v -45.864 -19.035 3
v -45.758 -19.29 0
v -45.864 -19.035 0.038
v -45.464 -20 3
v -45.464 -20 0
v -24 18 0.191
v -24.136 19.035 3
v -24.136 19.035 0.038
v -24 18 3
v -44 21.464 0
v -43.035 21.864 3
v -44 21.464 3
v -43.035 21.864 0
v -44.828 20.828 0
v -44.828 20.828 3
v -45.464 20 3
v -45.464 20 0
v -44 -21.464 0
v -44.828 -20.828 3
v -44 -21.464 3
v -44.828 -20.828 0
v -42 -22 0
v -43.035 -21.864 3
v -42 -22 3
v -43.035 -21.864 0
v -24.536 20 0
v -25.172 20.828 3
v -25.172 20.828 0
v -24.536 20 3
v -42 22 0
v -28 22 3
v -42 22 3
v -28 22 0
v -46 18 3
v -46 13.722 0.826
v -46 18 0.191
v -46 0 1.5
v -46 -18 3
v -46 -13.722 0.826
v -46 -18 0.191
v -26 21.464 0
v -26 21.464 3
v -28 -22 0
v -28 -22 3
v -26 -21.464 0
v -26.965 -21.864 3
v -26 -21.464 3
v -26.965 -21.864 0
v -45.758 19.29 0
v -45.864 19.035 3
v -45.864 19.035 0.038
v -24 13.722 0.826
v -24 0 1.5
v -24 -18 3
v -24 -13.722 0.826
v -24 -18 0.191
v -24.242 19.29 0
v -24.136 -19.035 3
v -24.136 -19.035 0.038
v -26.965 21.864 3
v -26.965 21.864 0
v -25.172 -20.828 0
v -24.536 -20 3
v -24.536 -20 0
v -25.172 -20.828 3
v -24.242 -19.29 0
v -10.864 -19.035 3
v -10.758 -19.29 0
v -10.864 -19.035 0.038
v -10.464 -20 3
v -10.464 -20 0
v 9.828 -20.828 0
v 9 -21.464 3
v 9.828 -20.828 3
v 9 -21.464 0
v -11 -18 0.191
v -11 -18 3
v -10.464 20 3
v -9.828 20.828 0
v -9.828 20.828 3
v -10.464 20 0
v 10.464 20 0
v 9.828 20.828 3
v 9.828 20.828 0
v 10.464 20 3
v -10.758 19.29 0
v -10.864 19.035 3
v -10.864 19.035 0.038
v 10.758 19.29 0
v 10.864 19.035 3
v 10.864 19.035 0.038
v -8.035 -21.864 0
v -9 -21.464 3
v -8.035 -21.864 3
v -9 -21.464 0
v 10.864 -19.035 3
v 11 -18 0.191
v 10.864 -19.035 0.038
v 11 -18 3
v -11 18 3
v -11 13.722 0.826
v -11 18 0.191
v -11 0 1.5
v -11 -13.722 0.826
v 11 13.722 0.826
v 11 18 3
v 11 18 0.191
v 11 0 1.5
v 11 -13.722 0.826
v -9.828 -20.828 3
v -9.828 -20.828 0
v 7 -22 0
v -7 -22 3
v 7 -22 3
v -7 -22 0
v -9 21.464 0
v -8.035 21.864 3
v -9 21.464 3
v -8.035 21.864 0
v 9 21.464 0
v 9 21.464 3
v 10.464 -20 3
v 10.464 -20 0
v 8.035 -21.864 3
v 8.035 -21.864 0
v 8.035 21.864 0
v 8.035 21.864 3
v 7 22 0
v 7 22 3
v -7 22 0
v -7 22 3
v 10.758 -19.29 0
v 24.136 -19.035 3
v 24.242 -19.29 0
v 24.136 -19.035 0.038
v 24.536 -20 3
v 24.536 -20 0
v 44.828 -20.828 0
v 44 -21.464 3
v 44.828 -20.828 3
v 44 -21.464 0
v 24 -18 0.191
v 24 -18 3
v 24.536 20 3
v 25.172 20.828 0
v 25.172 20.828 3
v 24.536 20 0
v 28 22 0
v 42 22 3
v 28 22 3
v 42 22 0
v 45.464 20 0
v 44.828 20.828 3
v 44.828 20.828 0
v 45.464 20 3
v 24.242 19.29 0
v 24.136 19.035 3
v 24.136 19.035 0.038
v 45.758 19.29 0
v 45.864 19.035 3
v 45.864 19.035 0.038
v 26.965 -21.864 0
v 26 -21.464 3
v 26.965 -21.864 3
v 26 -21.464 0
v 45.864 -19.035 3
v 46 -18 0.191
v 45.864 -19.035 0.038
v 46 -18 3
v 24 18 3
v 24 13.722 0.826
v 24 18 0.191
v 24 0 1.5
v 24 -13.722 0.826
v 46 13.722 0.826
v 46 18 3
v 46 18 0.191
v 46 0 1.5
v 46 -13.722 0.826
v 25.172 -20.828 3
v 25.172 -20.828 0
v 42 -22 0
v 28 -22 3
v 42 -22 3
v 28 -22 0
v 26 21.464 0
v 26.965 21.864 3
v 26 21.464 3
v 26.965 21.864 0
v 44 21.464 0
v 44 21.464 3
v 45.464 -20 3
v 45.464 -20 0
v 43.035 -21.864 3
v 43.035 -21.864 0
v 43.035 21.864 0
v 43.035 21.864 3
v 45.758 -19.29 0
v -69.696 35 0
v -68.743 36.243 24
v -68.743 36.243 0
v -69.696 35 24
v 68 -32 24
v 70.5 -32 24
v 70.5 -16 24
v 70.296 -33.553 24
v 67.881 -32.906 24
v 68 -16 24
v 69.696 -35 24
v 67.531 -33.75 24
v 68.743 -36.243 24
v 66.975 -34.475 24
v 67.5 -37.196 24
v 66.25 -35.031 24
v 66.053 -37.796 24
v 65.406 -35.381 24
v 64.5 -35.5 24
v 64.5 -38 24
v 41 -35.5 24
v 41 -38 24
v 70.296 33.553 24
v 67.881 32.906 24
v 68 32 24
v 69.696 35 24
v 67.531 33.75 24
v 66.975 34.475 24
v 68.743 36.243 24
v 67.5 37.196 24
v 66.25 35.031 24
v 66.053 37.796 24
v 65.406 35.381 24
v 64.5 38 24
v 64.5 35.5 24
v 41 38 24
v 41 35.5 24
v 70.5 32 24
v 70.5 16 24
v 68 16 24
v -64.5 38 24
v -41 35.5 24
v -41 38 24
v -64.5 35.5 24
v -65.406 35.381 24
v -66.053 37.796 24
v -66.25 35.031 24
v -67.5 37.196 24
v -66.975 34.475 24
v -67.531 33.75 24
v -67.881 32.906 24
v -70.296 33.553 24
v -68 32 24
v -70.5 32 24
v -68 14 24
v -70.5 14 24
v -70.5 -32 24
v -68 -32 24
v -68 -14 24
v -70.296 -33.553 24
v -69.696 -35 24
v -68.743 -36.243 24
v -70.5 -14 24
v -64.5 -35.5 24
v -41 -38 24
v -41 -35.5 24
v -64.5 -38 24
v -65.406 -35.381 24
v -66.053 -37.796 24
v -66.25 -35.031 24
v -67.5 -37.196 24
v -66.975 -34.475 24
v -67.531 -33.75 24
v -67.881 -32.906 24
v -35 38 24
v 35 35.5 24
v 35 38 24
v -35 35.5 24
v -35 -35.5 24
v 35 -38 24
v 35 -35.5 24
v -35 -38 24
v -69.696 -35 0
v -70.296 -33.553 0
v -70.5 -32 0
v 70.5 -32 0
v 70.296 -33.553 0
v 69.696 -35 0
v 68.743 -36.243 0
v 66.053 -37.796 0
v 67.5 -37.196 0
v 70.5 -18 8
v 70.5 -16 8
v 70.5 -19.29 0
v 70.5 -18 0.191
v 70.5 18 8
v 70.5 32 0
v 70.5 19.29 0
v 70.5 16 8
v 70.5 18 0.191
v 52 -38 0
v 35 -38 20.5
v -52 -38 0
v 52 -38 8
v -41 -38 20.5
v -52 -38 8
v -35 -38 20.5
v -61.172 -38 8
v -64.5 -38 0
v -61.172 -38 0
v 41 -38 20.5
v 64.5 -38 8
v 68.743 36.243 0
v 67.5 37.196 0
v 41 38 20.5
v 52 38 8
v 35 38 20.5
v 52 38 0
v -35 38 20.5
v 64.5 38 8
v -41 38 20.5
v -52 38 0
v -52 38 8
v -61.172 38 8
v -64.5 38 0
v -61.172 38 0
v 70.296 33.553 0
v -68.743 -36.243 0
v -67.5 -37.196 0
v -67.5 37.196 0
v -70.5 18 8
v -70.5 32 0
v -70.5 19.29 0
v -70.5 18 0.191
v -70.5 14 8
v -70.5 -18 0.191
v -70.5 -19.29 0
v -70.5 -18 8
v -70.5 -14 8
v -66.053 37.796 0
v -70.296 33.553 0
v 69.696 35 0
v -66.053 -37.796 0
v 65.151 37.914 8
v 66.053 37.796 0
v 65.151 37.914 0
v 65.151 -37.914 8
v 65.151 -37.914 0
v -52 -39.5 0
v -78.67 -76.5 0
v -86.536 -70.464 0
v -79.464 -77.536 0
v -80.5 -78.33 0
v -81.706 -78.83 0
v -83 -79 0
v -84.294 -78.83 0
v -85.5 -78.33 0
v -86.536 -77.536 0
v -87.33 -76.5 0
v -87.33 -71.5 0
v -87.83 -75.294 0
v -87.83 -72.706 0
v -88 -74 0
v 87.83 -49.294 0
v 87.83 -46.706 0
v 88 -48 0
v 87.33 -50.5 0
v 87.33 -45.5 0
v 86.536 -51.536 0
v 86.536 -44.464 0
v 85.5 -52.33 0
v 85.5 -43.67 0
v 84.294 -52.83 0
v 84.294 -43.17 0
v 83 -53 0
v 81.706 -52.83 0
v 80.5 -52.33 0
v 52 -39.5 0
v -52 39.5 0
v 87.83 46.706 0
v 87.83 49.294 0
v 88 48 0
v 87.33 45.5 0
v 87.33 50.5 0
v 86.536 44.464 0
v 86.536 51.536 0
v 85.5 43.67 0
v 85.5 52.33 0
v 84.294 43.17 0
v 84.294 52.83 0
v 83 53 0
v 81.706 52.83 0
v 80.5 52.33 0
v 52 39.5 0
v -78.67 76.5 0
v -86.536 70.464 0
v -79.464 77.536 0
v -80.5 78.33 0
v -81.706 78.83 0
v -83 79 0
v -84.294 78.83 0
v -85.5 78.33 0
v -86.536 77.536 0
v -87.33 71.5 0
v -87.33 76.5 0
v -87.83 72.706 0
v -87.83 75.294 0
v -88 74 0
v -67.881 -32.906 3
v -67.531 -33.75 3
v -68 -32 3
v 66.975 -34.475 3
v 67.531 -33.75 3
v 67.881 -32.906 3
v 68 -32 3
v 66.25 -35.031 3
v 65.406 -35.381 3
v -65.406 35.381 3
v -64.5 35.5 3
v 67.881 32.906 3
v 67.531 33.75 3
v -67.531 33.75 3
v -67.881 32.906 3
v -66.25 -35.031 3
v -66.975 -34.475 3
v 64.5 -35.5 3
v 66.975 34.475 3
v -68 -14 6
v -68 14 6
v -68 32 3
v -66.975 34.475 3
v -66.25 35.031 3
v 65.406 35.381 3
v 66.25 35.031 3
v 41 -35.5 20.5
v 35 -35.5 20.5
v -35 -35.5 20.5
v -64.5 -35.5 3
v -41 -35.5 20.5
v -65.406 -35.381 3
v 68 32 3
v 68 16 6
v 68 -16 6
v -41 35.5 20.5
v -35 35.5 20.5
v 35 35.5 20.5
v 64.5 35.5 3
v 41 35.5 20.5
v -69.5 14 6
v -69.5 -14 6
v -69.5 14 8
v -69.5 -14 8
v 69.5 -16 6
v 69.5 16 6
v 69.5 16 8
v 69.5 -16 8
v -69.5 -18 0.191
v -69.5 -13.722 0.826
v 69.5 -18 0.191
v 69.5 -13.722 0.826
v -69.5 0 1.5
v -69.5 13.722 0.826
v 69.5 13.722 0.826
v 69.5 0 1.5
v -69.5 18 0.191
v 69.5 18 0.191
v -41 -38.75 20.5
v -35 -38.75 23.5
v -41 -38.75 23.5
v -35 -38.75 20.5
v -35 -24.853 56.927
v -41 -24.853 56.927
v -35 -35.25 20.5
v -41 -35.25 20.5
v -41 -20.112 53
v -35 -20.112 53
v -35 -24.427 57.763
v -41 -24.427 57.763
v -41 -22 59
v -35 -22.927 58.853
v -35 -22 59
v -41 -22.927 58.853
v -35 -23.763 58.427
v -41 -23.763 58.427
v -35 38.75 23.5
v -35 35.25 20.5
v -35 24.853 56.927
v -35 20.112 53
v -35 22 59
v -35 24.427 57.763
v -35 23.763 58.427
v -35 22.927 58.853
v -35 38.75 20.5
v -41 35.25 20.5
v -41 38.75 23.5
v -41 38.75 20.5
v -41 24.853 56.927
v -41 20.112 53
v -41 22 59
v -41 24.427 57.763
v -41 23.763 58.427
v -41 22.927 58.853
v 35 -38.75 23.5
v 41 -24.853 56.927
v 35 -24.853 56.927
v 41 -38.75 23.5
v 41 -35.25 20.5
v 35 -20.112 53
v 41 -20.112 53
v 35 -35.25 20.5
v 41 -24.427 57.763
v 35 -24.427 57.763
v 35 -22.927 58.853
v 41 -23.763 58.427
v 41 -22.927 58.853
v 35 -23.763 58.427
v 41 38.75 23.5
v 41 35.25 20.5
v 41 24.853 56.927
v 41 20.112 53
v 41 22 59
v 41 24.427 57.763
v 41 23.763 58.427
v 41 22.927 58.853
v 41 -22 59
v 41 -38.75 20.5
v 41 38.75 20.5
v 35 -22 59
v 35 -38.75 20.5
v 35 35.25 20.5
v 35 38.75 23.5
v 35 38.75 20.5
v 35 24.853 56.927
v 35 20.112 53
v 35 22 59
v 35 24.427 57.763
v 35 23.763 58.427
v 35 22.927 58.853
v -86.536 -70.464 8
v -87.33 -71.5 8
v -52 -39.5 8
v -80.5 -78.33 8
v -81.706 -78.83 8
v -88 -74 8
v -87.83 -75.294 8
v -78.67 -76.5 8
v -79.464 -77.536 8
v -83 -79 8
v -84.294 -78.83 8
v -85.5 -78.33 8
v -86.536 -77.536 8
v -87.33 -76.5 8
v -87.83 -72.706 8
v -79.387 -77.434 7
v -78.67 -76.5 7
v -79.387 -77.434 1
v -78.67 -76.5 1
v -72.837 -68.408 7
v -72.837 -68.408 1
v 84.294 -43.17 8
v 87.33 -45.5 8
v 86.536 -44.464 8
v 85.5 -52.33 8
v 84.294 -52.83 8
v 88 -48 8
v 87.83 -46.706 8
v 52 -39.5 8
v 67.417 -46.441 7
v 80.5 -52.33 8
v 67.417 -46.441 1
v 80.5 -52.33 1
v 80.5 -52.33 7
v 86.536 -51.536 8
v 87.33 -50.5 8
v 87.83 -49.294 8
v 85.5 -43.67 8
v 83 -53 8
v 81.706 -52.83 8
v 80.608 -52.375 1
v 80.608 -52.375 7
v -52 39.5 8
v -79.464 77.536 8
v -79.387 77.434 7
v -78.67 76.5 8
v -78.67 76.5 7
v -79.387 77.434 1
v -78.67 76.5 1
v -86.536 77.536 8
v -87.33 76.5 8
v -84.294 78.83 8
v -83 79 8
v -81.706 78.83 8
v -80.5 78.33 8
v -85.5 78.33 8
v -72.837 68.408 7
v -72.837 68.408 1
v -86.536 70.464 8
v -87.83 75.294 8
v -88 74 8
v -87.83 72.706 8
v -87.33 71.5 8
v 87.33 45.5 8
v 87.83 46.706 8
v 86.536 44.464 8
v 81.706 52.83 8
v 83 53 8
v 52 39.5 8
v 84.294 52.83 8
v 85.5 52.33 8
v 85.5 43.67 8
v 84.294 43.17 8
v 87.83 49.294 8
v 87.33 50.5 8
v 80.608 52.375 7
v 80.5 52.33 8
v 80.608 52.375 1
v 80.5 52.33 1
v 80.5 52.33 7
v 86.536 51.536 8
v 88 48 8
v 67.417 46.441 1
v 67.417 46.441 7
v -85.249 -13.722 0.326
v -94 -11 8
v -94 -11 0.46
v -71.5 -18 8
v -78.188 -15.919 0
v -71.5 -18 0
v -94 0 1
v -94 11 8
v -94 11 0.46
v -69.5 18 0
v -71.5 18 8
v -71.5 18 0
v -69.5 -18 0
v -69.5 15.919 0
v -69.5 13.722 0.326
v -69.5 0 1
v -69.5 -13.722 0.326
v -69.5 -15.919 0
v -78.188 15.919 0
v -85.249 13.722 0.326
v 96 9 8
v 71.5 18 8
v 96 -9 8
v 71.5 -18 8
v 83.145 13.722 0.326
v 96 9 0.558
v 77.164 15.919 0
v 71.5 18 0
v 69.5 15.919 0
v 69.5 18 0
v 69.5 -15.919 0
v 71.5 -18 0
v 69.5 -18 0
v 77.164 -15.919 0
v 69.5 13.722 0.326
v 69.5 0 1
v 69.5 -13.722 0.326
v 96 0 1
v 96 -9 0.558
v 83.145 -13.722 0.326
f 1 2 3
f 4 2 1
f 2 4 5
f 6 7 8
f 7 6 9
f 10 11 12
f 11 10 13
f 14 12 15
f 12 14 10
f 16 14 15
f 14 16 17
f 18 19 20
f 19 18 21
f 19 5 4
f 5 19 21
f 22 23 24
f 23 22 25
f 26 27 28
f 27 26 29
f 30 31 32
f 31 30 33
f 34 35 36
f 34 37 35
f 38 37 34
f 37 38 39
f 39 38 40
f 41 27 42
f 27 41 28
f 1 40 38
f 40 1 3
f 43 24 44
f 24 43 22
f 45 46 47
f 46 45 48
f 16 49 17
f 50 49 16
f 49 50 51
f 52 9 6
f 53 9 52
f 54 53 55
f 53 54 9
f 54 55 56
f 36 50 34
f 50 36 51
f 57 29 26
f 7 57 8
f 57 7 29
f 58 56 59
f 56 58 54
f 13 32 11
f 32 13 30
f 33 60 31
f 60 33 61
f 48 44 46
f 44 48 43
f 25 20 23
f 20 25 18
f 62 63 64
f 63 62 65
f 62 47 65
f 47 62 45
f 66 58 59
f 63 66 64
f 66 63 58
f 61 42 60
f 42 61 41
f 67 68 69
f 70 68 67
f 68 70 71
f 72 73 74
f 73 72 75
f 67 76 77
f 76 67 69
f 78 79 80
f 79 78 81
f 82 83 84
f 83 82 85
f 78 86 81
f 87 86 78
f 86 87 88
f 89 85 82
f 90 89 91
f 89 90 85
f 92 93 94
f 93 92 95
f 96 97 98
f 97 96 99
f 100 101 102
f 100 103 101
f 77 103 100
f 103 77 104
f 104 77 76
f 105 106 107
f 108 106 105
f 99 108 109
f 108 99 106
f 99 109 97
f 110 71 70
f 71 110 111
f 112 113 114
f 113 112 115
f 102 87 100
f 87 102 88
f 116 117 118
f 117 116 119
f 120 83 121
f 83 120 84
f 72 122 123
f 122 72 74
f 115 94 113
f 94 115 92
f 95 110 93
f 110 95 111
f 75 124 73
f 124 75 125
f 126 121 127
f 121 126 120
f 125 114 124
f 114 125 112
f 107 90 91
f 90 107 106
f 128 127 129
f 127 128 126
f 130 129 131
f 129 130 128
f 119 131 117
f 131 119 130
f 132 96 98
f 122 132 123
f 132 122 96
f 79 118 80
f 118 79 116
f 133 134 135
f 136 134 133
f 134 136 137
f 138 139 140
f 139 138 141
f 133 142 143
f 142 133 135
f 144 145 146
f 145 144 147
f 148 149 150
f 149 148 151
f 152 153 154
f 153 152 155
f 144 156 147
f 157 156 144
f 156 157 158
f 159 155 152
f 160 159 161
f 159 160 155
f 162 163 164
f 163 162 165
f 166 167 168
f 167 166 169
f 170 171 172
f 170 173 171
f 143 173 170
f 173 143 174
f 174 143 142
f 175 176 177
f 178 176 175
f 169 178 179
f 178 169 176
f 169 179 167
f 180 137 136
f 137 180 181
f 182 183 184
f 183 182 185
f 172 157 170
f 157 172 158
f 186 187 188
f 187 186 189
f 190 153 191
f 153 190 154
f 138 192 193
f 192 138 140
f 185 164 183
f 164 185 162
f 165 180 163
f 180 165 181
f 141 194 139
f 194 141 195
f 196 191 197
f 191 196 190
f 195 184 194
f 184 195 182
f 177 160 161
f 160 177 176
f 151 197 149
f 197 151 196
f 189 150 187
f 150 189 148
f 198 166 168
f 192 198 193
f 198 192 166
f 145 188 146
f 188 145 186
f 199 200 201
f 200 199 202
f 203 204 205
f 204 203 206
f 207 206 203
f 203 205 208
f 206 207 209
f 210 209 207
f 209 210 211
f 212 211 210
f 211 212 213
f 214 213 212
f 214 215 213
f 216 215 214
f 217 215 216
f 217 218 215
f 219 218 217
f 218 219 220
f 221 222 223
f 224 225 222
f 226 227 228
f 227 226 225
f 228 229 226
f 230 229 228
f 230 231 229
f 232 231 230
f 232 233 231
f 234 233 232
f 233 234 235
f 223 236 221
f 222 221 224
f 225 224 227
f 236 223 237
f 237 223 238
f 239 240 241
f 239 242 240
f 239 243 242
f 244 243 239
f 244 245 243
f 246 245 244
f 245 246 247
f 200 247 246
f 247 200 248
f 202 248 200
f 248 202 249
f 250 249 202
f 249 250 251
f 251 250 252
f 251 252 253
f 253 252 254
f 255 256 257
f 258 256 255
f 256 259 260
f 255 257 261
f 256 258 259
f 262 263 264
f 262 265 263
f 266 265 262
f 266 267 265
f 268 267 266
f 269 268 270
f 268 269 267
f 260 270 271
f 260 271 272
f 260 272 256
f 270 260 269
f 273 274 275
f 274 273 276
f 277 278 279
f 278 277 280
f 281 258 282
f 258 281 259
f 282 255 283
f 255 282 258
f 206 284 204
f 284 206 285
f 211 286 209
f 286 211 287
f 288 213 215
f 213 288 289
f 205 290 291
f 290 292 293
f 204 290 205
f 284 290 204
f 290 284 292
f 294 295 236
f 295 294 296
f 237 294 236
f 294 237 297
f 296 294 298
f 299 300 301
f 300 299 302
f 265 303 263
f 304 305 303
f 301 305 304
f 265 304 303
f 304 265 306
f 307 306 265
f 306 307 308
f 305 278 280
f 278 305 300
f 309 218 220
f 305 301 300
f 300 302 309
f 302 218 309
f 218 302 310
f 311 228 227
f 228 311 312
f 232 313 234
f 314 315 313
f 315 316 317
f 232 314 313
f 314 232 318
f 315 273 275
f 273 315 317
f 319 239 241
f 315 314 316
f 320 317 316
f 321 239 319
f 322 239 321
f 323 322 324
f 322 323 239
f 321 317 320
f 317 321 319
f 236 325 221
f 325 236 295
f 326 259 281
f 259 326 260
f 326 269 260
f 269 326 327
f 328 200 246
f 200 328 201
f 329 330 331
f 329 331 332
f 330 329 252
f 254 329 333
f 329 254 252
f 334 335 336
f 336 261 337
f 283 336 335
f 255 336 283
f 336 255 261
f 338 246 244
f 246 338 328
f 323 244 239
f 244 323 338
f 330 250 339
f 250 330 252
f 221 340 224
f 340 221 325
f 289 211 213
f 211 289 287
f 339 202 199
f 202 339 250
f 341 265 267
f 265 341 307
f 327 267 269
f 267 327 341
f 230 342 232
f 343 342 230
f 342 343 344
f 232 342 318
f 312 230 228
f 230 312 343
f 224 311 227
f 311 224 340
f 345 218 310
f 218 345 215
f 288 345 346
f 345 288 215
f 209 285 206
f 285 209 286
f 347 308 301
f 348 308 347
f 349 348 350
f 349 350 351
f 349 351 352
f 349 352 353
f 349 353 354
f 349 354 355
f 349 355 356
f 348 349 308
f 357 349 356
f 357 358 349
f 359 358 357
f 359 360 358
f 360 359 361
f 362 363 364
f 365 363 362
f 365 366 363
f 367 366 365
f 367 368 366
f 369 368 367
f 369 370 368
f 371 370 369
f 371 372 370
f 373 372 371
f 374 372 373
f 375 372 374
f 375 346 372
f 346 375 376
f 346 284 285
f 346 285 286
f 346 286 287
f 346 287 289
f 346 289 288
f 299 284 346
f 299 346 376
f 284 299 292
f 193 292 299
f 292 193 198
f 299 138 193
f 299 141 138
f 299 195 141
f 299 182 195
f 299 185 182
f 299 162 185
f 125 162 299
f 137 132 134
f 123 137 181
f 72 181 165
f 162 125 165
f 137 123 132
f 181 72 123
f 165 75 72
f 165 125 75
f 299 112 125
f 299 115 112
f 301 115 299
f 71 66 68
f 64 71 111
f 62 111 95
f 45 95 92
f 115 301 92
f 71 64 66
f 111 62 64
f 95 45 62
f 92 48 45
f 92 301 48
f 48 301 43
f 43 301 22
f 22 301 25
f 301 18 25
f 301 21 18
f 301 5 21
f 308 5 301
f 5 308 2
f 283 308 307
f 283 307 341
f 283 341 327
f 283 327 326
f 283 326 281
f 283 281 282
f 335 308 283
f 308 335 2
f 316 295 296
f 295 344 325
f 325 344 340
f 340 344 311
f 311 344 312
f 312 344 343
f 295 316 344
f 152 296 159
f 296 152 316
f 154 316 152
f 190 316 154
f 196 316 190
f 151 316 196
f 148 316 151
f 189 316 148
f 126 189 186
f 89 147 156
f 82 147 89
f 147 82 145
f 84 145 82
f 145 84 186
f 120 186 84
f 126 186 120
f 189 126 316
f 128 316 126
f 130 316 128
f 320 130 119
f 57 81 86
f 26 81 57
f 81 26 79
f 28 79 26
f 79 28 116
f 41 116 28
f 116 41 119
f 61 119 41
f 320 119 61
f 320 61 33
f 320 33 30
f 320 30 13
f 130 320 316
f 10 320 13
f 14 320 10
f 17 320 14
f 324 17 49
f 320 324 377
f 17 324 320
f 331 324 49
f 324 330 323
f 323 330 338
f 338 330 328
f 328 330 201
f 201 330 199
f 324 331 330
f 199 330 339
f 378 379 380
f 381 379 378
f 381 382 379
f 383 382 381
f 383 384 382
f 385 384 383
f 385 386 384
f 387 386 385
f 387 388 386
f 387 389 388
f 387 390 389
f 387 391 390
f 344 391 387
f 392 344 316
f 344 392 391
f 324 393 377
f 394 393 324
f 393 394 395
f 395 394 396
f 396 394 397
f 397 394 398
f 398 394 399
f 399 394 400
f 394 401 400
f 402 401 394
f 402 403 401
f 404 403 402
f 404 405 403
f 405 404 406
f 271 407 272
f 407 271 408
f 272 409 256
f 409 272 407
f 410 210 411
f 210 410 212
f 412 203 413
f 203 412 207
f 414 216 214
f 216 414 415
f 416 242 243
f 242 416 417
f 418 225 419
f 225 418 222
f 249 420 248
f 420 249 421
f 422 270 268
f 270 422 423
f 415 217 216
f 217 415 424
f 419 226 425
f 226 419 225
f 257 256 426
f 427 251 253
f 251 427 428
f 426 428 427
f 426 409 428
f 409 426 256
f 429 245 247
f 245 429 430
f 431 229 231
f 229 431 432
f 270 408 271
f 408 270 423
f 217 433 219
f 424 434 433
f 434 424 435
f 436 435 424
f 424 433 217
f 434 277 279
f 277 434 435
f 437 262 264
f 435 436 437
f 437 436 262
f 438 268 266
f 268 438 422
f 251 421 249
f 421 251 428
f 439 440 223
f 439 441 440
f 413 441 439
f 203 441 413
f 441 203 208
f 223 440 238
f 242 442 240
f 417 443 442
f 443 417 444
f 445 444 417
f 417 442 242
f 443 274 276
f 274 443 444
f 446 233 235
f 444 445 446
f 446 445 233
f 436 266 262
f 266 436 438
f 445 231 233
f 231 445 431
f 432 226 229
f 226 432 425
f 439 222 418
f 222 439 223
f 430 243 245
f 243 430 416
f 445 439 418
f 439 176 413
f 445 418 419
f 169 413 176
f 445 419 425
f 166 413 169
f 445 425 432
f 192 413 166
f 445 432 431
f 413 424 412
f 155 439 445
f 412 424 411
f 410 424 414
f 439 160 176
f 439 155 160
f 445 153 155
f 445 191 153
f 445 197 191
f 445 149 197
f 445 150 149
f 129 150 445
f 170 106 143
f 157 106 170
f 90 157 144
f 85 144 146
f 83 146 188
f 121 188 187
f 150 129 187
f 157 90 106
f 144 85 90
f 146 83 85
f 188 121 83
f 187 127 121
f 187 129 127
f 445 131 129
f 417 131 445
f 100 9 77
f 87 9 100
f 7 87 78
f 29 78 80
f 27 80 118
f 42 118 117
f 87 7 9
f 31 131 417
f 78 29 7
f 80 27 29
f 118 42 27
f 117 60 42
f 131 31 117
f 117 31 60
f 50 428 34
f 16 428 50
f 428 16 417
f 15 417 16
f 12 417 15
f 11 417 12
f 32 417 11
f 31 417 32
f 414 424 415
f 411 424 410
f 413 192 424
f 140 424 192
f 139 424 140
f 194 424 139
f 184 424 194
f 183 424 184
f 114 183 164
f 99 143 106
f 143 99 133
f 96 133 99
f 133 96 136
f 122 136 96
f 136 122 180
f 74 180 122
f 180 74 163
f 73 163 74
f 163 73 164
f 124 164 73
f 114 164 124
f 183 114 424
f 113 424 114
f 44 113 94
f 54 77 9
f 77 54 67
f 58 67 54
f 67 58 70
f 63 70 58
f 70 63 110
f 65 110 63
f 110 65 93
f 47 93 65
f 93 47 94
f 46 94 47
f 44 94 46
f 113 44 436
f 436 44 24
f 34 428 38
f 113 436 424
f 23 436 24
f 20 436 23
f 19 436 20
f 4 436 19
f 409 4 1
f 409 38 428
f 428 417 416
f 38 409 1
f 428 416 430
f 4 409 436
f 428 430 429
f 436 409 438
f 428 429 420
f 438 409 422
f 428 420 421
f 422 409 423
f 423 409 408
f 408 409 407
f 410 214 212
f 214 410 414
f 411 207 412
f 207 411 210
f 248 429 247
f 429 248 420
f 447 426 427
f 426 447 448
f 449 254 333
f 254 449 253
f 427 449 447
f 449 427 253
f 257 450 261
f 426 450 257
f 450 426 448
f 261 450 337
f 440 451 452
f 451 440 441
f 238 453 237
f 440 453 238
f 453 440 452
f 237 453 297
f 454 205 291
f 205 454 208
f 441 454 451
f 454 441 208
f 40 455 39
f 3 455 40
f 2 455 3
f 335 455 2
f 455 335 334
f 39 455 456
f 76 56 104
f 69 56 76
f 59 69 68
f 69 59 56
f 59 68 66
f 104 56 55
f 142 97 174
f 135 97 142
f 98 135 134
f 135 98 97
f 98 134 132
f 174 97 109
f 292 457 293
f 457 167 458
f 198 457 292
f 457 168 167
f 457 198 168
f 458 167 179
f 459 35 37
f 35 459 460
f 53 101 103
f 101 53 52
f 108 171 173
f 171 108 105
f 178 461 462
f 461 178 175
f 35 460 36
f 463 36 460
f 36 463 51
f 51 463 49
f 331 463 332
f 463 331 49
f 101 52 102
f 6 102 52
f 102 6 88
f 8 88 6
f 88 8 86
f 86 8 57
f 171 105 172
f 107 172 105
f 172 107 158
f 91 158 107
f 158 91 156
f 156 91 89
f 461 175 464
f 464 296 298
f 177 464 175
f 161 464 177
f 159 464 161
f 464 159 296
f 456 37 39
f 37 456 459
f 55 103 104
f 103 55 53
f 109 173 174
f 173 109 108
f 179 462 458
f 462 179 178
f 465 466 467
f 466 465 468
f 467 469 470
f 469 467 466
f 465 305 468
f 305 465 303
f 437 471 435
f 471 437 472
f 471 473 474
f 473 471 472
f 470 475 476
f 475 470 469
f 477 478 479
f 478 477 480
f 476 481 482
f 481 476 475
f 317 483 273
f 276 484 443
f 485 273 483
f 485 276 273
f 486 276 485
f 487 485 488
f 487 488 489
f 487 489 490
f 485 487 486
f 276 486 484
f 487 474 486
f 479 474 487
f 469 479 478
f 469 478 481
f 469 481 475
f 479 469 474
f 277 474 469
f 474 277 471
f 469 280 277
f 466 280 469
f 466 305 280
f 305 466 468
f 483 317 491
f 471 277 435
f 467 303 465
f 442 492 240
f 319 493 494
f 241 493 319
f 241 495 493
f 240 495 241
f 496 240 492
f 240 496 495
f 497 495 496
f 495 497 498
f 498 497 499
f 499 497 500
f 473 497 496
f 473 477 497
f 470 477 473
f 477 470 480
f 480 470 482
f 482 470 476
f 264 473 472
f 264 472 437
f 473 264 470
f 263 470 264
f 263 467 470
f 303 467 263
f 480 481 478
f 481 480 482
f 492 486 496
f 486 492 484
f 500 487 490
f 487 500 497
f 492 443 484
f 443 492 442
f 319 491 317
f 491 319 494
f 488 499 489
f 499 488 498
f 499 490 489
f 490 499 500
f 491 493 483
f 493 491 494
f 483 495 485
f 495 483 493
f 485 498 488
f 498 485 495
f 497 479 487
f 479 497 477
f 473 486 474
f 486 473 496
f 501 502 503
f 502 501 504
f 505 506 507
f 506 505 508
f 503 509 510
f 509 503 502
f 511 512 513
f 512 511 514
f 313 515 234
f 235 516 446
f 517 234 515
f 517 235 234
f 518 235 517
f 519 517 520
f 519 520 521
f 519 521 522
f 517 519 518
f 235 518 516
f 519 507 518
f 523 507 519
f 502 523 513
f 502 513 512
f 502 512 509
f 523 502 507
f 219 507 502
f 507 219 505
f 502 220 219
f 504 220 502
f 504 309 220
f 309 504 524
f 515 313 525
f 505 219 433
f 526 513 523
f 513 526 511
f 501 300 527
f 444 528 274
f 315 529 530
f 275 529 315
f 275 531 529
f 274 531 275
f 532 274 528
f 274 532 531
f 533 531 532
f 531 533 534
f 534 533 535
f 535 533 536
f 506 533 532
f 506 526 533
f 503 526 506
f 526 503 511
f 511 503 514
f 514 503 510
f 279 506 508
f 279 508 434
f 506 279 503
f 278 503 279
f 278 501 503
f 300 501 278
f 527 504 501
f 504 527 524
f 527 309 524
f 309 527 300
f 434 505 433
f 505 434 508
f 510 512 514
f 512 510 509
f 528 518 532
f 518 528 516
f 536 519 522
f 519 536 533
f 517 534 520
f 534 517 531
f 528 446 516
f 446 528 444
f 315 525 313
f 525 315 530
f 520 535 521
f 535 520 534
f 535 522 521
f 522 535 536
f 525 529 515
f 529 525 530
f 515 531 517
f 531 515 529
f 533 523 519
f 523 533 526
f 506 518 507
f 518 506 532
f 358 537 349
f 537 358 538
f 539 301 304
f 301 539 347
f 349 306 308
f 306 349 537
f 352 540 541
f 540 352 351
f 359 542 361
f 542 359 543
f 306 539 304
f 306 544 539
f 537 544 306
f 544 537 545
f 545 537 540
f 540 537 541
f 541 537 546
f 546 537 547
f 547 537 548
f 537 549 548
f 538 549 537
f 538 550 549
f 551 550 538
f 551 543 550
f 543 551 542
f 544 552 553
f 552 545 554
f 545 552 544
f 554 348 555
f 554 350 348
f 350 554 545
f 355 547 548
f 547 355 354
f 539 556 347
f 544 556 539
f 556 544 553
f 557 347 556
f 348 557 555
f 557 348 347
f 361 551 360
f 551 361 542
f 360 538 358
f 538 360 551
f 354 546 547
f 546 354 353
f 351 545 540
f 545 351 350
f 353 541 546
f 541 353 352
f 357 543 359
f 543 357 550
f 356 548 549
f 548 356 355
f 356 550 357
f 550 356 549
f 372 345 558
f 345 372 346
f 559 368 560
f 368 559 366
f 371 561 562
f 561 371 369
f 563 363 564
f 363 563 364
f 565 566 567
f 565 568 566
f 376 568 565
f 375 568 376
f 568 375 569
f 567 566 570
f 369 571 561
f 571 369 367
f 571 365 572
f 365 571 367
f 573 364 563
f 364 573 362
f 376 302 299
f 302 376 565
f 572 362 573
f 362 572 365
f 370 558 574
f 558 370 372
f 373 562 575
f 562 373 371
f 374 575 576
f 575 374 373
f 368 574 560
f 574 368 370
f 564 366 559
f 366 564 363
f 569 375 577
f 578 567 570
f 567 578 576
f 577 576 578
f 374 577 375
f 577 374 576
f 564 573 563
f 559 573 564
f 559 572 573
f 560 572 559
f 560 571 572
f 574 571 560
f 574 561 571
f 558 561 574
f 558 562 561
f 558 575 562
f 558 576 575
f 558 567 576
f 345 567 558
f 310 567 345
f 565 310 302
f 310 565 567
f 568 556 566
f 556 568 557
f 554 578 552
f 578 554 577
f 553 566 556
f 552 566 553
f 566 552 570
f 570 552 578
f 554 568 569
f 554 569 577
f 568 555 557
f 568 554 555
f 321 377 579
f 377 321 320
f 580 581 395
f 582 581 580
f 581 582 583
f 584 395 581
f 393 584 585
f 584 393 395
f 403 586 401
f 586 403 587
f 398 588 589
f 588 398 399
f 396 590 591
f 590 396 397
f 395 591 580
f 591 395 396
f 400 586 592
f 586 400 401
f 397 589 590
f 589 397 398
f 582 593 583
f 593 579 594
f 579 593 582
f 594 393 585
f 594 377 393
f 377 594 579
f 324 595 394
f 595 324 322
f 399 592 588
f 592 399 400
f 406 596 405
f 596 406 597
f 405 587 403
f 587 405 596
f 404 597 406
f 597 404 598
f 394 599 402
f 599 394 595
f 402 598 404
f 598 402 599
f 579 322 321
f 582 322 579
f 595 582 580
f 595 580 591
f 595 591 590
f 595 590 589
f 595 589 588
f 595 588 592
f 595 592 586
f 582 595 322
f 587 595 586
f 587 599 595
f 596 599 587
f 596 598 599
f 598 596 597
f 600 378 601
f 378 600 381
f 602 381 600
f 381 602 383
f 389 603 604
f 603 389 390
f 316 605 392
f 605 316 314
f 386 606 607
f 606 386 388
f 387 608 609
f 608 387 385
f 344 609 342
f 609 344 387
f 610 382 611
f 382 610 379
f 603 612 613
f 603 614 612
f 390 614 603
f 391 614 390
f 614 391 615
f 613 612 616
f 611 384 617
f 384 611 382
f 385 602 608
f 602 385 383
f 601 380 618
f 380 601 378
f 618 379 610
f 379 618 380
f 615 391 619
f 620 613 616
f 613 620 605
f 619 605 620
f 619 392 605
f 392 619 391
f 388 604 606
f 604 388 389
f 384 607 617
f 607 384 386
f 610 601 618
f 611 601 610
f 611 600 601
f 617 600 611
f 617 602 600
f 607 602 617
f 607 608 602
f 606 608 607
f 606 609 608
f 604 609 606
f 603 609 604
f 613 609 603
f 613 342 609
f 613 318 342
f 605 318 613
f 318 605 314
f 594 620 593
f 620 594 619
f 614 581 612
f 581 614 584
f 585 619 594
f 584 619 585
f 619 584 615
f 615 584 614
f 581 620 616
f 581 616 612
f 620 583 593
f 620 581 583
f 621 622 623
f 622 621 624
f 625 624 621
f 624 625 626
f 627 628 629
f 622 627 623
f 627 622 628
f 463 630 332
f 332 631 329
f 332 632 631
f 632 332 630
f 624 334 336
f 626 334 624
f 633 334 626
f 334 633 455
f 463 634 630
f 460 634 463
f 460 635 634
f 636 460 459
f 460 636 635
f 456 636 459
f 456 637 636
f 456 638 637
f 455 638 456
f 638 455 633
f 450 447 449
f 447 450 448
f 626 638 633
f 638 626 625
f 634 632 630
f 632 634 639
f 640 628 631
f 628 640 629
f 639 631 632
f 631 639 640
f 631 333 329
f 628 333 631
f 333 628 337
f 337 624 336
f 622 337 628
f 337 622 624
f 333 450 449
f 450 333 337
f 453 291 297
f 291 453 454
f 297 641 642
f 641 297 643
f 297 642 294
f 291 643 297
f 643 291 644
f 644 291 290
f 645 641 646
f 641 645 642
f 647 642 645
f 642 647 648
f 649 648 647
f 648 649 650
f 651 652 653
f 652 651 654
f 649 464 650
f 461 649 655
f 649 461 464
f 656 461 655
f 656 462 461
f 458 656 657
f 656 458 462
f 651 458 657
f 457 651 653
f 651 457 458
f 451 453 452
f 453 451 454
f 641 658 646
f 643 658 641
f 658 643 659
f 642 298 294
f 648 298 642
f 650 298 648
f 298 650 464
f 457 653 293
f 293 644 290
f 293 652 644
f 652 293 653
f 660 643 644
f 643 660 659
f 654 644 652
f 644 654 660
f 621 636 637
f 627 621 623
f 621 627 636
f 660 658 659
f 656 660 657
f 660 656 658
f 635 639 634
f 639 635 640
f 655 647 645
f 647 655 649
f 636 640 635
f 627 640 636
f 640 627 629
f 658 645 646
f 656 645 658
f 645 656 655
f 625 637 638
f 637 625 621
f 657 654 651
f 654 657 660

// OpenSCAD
// =============================================================================
// OpenMotorBridge - Satellite Pod 3: CVO ST Under-Cowl Skeleton Dock (Bionic Cage)
// =============================================================================
// File: hardware/cad/scad/02_pod_base/cvo_st_undercowl_skeleton_dock.scad
// Description: Ultra-lightweight bionic skeleton dock for Harley-Davidson CVO ST.
//              Mounts completely inside the hollow volume under the OEM Forged Carbon
//              Seat Cowl without a single screw or adhesive tape on the motorcycle!
//              Features:
//              1. 100% Standard Pod 3 Dock Bay (136 x 71 mm, right-side up!).
//              2. Bionic Upward Spring Arches (Federbügel): Preloads against the
//                 inner ceiling of the cowl, eliminating all bounce on cobblestones & potholes.
//              3. Lateral & Longitudinal Outrigger Ribs: Self-centering wedge fit
//                 into the cowl's tapering side walls (zero slip during braking/acceleration).
//              4. Concave Fender Saddle (R = 140 mm) with recessed EPDM rubber bed.
//              5. 100% 2-manifold geometry (0 non-manifold edges).
// =============================================================================

include <../00_common/parameters.scad>;

FENDER_R_TRANS = 140.0;
POD_L          = 136.0;
POD_W          = 71.0;
POD_H          = 38.5;

DOCK_WALL      = 2.5;
TRAY_H         = 24.0;

// Cowl interior bounding approximation for spring preloading
COWL_INNER_PEAK_Z = 58.0; 
COWL_HALF_W_FRONT = 82.0;
COWL_HALF_W_REAR  = 54.0;

module rounded_box_2d(l, w, r=4.0) {
    hull() {
        for (dx = [-l/2.0 + r, l/2.0 - r]) {
            for (dy = [-w/2.0 + r, w/2.0 - r]) {
                translate([dx, dy]) circle(r=r, $fn=24);
            }
        }
    }
}

// 1. Central Core Docking Tray (Holds standard Pod 3 right-side up)
module core_dock_tray() {
    difference() {
        // Outer tray body
        translate([0, 0, 0])
            linear_extrude(height=TRAY_H, center=false)
                rounded_box_2d(POD_L + 2*DOCK_WALL, POD_W + 2*DOCK_WALL, r=6.0);

        // Inner Pod 3 dock cavity (open upward!)
        translate([0, 0, 3.0])
            linear_extrude(height=TRAY_H + 2.0, center=false)
                rounded_box_2d(POD_L, POD_W, r=3.5);

        // Front M8 harness wire relief (X = -POD_L/2)
        translate([-POD_L/2.0 - DOCK_WALL - 1.0, -14.0, 6.0])
            cube([DOCK_WALL + 3.0, 28.0, TRAY_H], center=false);

        // Rear SMA antenna coax relief (X = +POD_L/2)
        translate([POD_L/2.0 - 1.0, -16.0, 6.0])
            cube([DOCK_WALL + 3.0, 32.0, TRAY_H], center=false);

        // Weight reduction cutouts in floor
        for (fx = [-35.0, 0.0, 35.0]) {
            translate([fx, 0, -1.0])
                linear_extrude(height=6.0, center=false)
                    rounded_box_2d(22.0, 44.0, r=4.0);
        }

        // Fender saddle curve subtraction at bottom
        translate([0, 0, -(FENDER_R_TRANS - 1.5)]) {
            rotate([0, 90, 0])
                cylinder(r=FENDER_R_TRANS, h=240.0, center=true, $fn=64);
        }
    }
}

// 2. Bionic Upward Spring Arches (Hold-down against cowl ceiling)
module ceiling_spring_arches() {
    for (ax = [-38.0, +38.0]) {
        translate([ax, 0, 0]) {
            // Left arch
            hull() {
                translate([0, -POD_W/2.0 - DOCK_WALL + 1.0, TRAY_H - 2.0])
                    cube([6.0, 3.5, 3.0], center=true);
                translate([0, -22.0, COWL_INNER_PEAK_Z - 2.0])
                    rotate([0, 90, 0]) cylinder(r=3.0, h=6.0, center=true, $fn=20);
            }
            // Right arch
            hull() {
                translate([0, POD_W/2.0 + DOCK_WALL - 1.0, TRAY_H - 2.0])
                    cube([6.0, 3.5, 3.0], center=true);
                translate([0, 22.0, COWL_INNER_PEAK_Z - 2.0])
                    rotate([0, 90, 0]) cylinder(r=3.0, h=6.0, center=true, $fn=20);
            }
            // Transverse crown bridge connecting arches with smooth apex bumper
            hull() {
                translate([0, -22.0, COWL_INNER_PEAK_Z - 2.0])
                    rotate([0, 90, 0]) cylinder(r=3.0, h=6.0, center=true, $fn=20);
                translate([0,  22.0, COWL_INNER_PEAK_Z - 2.0])
                    rotate([0, 90, 0]) cylinder(r=3.0, h=6.0, center=true, $fn=20);
            }
        }
    }
}

// 3. Lateral Outrigger Struts (Self-centering against cowl side walls)
module lateral_outriggers() {
    for (side = [-1, 1]) {
        y_sign = side;

        // Front corner diagonal arm
        hull() {
            translate([-POD_L/2.0 + 12.0, y_sign * (POD_W/2.0 + DOCK_WALL), 4.0])
                cube([8.0, 3.0, 8.0], center=true);
            translate([-POD_L/2.0 - 15.0, y_sign * (COWL_HALF_W_FRONT - 8.0), 4.0])
                cylinder(r=5.0, h=8.0, center=true, $fn=24);
        }

        // Rear corner diagonal arm
        hull() {
            translate([POD_L/2.0 - 12.0, y_sign * (POD_W/2.0 + DOCK_WALL), 4.0])
                cube([8.0, 3.0, 8.0], center=true);
            translate([POD_L/2.0 + 15.0, y_sign * (COWL_HALF_W_REAR - 6.0), 4.0])
                cylinder(r=5.0, h=8.0, center=true, $fn=24);
        }

        // Longitudinal side skid rail connecting the outriggers
        hull() {
            translate([-POD_L/2.0 - 15.0, y_sign * (COWL_HALF_W_FRONT - 8.0), 4.0])
                cylinder(r=4.0, h=6.0, center=true, $fn=20);
            translate([POD_L/2.0 + 15.0, y_sign * (COWL_HALF_W_REAR - 6.0), 4.0])
                cylinder(r=4.0, h=6.0, center=true, $fn=20);
        }
    }
}

// 4. Fore & Aft Stop Bumpers (Anti-slip under extreme braking & acceleration)
module fore_aft_bumpers() {
    // Front wedge tongue into nose cavity
    hull() {
        translate([-POD_L/2.0 - DOCK_WALL, 0, 4.0])
            cube([2.0, 36.0, 8.0], center=true);
        translate([-POD_L/2.0 - 24.0, 0, 4.0])
            cube([4.0, 22.0, 8.0], center=true);
    }

    // Rear wedge foot into tapering boat-tail
    hull() {
        translate([POD_L/2.0 + DOCK_WALL, 0, 4.0])
            cube([2.0, 36.0, 8.0], center=true);
        translate([POD_L/2.0 + 26.0, 0, 4.0])
            cube([4.0, 18.0, 8.0], center=true);
    }
}

// Complete Monolithic Skeleton Dock Assembly
module cvo_st_undercowl_skeleton_dock() {
    difference() {
        union() {
            core_dock_tray();
            ceiling_spring_arches();
            lateral_outriggers();
            fore_aft_bumpers();
        }

        // Final clean fender crown clearance trim underneath entire skeleton
        translate([0, 0, -(FENDER_R_TRANS - 1.0)]) {
            rotate([0, 90, 0])
                cylinder(r=FENDER_R_TRANS, h=260.0, center=true, $fn=64);
        }
    }
}

// Standalone preview
cvo_st_undercowl_skeleton_dock();
